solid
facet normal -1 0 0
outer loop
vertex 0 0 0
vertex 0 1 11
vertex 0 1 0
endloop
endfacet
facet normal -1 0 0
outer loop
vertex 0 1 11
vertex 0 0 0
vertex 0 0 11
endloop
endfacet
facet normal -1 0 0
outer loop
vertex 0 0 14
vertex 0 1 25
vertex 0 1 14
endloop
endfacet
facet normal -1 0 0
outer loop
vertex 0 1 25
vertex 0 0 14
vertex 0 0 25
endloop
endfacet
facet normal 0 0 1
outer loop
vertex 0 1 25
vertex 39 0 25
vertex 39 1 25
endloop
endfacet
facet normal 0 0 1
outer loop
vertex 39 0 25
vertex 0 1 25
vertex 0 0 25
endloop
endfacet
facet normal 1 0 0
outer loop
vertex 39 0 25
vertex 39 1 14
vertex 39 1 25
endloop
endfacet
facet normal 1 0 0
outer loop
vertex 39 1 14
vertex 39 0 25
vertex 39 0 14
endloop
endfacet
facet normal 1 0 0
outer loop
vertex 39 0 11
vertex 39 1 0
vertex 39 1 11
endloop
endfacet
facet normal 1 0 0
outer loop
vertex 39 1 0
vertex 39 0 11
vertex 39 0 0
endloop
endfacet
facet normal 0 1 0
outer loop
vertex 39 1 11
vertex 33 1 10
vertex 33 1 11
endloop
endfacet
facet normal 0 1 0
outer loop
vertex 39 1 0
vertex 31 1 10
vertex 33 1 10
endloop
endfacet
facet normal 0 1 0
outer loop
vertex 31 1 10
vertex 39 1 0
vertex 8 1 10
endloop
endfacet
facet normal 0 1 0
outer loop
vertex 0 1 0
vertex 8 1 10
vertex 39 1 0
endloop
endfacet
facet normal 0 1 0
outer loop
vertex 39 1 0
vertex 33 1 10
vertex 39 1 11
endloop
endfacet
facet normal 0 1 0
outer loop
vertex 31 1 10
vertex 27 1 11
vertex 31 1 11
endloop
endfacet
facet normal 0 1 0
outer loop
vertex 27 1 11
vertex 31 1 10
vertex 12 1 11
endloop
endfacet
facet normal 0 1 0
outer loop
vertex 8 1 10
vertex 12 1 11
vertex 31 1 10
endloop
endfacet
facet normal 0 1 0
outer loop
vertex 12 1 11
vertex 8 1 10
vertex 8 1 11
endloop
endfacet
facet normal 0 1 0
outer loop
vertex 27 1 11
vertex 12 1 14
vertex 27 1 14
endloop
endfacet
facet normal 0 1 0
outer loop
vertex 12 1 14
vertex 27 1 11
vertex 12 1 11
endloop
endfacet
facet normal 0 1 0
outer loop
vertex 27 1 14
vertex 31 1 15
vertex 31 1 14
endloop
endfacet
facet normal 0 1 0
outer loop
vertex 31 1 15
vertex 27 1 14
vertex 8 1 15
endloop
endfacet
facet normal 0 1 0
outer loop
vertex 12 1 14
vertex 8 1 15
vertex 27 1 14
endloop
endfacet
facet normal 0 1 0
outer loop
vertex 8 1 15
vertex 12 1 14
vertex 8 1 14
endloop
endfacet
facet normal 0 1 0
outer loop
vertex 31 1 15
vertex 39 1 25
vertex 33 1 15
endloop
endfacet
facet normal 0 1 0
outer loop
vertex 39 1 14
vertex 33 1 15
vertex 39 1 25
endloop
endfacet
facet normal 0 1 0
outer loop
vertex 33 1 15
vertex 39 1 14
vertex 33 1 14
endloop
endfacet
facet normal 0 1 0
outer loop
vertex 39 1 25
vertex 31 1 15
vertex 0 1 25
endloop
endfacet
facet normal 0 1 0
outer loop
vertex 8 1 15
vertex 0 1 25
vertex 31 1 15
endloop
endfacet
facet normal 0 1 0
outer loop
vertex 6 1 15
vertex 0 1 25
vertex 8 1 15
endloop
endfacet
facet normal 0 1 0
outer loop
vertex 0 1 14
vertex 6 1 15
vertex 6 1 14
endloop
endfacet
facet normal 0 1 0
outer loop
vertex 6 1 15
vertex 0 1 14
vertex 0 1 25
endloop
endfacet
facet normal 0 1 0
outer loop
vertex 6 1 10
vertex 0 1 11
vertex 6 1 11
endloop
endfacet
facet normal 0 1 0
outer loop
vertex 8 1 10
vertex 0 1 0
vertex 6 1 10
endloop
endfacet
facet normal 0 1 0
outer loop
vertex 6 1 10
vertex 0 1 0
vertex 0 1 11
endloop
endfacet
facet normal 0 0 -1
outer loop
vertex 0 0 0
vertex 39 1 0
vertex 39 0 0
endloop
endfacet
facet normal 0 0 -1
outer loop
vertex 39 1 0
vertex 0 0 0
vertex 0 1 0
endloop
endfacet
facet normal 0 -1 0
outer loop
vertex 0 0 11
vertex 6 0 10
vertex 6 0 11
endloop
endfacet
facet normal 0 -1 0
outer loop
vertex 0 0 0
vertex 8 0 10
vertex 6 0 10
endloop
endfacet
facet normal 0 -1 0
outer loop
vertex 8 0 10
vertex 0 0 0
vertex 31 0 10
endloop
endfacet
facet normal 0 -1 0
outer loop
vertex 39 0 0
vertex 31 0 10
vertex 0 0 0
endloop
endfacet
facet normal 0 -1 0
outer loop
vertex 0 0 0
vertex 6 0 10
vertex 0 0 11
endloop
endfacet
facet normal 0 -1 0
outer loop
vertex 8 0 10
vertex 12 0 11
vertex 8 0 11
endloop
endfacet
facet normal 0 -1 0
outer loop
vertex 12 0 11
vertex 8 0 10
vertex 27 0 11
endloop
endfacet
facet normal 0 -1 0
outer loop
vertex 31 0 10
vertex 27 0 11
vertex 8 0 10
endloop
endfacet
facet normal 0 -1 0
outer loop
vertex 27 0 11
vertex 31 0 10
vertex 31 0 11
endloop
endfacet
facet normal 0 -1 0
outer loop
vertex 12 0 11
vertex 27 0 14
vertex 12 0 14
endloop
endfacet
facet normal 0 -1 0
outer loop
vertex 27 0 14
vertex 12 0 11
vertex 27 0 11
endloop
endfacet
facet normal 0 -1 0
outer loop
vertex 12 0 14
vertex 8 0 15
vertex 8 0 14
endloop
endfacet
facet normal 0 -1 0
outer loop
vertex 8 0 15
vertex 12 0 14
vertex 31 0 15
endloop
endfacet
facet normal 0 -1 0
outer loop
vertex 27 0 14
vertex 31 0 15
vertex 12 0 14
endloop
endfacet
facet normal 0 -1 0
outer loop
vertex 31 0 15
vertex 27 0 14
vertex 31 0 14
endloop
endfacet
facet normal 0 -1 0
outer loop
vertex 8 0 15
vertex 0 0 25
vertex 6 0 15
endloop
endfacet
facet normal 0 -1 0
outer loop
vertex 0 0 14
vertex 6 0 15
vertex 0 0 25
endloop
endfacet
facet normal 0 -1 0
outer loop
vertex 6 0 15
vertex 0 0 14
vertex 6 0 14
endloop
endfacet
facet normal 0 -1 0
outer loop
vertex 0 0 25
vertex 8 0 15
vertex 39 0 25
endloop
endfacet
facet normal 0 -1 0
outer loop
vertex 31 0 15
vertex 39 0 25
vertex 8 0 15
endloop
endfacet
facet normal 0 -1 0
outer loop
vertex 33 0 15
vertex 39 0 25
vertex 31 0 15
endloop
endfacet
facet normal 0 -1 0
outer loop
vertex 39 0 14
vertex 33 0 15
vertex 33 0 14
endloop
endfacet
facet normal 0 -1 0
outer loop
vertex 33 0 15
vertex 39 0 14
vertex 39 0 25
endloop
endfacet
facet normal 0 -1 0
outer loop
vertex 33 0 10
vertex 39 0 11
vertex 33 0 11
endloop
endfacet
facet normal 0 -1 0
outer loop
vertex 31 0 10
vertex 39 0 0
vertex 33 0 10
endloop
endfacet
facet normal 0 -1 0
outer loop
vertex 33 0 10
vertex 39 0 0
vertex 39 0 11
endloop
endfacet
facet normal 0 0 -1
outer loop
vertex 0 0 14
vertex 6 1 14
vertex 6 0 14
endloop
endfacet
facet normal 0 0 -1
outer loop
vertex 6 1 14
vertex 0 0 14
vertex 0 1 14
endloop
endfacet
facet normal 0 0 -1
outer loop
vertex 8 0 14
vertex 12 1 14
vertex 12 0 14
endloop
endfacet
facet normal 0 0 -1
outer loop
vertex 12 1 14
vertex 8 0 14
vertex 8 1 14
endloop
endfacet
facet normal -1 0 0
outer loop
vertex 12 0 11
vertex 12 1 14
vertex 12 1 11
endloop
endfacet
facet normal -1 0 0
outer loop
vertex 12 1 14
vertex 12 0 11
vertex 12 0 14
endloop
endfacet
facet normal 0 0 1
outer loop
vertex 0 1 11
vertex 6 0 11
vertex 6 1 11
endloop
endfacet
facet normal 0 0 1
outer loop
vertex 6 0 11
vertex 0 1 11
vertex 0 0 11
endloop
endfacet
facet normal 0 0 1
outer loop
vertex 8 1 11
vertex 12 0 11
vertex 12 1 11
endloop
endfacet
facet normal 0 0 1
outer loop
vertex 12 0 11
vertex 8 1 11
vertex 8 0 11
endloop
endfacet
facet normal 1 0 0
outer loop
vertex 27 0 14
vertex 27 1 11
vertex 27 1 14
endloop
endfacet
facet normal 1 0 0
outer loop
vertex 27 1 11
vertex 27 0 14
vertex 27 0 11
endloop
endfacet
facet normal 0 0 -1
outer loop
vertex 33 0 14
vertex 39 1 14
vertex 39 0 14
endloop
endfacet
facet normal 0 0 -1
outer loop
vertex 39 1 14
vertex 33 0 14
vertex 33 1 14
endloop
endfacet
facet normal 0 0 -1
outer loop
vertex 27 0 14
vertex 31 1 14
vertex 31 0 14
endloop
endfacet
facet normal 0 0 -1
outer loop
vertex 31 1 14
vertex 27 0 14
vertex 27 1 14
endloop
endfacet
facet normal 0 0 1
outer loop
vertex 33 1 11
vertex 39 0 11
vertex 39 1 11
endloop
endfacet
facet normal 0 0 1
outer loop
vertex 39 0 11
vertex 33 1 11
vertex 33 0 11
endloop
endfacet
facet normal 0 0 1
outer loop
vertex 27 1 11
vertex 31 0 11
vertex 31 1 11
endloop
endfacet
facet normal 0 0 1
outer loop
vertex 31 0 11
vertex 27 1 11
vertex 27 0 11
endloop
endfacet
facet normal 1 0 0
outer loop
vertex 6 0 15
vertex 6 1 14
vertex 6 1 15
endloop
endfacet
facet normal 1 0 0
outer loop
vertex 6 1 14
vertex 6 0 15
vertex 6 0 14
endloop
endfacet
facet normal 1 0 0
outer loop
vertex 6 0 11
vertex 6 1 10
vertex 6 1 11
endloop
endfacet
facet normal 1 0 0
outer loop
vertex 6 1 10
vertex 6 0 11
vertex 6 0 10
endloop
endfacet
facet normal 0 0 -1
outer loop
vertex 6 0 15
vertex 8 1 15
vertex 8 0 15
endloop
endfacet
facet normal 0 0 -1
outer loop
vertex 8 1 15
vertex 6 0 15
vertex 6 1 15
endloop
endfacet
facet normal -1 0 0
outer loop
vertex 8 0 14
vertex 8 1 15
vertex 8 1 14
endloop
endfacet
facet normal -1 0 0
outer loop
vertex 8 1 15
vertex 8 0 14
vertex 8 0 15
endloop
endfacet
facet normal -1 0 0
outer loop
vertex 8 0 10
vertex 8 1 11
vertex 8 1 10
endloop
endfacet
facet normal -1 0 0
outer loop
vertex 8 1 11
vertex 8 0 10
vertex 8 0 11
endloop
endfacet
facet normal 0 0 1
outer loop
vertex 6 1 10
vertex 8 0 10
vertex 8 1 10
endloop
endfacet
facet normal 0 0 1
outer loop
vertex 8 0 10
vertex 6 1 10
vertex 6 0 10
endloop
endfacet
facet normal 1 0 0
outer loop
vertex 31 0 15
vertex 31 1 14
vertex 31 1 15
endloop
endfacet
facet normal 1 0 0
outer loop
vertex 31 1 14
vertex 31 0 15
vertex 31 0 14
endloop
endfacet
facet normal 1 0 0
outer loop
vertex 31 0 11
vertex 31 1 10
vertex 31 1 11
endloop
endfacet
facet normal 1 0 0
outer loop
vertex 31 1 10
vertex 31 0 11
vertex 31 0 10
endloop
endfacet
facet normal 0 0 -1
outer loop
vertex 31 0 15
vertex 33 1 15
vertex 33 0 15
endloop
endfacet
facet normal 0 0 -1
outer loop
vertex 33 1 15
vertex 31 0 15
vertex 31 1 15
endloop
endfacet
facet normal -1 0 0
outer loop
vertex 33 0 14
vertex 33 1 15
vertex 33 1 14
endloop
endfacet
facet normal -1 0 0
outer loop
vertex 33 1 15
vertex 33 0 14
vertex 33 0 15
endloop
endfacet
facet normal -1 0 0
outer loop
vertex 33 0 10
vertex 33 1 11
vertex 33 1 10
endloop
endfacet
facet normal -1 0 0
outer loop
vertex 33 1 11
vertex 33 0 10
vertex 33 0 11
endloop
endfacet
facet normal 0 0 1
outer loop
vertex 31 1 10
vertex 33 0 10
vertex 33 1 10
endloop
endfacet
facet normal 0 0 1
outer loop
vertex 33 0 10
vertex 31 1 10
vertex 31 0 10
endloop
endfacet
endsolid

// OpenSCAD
difference()
{
color("red")translate([0,0,0])cube([39,1,25]);

color("green")translate([-1,-1,11])cube([13,3,3]);

color("green")translate([27,-1,11])cube([13,3,3]);

color("yellow")translate([6,-1,10])cube([2,3,5]);

color("yellow")translate([31,-1,10])cube([2,3,5]);
}
